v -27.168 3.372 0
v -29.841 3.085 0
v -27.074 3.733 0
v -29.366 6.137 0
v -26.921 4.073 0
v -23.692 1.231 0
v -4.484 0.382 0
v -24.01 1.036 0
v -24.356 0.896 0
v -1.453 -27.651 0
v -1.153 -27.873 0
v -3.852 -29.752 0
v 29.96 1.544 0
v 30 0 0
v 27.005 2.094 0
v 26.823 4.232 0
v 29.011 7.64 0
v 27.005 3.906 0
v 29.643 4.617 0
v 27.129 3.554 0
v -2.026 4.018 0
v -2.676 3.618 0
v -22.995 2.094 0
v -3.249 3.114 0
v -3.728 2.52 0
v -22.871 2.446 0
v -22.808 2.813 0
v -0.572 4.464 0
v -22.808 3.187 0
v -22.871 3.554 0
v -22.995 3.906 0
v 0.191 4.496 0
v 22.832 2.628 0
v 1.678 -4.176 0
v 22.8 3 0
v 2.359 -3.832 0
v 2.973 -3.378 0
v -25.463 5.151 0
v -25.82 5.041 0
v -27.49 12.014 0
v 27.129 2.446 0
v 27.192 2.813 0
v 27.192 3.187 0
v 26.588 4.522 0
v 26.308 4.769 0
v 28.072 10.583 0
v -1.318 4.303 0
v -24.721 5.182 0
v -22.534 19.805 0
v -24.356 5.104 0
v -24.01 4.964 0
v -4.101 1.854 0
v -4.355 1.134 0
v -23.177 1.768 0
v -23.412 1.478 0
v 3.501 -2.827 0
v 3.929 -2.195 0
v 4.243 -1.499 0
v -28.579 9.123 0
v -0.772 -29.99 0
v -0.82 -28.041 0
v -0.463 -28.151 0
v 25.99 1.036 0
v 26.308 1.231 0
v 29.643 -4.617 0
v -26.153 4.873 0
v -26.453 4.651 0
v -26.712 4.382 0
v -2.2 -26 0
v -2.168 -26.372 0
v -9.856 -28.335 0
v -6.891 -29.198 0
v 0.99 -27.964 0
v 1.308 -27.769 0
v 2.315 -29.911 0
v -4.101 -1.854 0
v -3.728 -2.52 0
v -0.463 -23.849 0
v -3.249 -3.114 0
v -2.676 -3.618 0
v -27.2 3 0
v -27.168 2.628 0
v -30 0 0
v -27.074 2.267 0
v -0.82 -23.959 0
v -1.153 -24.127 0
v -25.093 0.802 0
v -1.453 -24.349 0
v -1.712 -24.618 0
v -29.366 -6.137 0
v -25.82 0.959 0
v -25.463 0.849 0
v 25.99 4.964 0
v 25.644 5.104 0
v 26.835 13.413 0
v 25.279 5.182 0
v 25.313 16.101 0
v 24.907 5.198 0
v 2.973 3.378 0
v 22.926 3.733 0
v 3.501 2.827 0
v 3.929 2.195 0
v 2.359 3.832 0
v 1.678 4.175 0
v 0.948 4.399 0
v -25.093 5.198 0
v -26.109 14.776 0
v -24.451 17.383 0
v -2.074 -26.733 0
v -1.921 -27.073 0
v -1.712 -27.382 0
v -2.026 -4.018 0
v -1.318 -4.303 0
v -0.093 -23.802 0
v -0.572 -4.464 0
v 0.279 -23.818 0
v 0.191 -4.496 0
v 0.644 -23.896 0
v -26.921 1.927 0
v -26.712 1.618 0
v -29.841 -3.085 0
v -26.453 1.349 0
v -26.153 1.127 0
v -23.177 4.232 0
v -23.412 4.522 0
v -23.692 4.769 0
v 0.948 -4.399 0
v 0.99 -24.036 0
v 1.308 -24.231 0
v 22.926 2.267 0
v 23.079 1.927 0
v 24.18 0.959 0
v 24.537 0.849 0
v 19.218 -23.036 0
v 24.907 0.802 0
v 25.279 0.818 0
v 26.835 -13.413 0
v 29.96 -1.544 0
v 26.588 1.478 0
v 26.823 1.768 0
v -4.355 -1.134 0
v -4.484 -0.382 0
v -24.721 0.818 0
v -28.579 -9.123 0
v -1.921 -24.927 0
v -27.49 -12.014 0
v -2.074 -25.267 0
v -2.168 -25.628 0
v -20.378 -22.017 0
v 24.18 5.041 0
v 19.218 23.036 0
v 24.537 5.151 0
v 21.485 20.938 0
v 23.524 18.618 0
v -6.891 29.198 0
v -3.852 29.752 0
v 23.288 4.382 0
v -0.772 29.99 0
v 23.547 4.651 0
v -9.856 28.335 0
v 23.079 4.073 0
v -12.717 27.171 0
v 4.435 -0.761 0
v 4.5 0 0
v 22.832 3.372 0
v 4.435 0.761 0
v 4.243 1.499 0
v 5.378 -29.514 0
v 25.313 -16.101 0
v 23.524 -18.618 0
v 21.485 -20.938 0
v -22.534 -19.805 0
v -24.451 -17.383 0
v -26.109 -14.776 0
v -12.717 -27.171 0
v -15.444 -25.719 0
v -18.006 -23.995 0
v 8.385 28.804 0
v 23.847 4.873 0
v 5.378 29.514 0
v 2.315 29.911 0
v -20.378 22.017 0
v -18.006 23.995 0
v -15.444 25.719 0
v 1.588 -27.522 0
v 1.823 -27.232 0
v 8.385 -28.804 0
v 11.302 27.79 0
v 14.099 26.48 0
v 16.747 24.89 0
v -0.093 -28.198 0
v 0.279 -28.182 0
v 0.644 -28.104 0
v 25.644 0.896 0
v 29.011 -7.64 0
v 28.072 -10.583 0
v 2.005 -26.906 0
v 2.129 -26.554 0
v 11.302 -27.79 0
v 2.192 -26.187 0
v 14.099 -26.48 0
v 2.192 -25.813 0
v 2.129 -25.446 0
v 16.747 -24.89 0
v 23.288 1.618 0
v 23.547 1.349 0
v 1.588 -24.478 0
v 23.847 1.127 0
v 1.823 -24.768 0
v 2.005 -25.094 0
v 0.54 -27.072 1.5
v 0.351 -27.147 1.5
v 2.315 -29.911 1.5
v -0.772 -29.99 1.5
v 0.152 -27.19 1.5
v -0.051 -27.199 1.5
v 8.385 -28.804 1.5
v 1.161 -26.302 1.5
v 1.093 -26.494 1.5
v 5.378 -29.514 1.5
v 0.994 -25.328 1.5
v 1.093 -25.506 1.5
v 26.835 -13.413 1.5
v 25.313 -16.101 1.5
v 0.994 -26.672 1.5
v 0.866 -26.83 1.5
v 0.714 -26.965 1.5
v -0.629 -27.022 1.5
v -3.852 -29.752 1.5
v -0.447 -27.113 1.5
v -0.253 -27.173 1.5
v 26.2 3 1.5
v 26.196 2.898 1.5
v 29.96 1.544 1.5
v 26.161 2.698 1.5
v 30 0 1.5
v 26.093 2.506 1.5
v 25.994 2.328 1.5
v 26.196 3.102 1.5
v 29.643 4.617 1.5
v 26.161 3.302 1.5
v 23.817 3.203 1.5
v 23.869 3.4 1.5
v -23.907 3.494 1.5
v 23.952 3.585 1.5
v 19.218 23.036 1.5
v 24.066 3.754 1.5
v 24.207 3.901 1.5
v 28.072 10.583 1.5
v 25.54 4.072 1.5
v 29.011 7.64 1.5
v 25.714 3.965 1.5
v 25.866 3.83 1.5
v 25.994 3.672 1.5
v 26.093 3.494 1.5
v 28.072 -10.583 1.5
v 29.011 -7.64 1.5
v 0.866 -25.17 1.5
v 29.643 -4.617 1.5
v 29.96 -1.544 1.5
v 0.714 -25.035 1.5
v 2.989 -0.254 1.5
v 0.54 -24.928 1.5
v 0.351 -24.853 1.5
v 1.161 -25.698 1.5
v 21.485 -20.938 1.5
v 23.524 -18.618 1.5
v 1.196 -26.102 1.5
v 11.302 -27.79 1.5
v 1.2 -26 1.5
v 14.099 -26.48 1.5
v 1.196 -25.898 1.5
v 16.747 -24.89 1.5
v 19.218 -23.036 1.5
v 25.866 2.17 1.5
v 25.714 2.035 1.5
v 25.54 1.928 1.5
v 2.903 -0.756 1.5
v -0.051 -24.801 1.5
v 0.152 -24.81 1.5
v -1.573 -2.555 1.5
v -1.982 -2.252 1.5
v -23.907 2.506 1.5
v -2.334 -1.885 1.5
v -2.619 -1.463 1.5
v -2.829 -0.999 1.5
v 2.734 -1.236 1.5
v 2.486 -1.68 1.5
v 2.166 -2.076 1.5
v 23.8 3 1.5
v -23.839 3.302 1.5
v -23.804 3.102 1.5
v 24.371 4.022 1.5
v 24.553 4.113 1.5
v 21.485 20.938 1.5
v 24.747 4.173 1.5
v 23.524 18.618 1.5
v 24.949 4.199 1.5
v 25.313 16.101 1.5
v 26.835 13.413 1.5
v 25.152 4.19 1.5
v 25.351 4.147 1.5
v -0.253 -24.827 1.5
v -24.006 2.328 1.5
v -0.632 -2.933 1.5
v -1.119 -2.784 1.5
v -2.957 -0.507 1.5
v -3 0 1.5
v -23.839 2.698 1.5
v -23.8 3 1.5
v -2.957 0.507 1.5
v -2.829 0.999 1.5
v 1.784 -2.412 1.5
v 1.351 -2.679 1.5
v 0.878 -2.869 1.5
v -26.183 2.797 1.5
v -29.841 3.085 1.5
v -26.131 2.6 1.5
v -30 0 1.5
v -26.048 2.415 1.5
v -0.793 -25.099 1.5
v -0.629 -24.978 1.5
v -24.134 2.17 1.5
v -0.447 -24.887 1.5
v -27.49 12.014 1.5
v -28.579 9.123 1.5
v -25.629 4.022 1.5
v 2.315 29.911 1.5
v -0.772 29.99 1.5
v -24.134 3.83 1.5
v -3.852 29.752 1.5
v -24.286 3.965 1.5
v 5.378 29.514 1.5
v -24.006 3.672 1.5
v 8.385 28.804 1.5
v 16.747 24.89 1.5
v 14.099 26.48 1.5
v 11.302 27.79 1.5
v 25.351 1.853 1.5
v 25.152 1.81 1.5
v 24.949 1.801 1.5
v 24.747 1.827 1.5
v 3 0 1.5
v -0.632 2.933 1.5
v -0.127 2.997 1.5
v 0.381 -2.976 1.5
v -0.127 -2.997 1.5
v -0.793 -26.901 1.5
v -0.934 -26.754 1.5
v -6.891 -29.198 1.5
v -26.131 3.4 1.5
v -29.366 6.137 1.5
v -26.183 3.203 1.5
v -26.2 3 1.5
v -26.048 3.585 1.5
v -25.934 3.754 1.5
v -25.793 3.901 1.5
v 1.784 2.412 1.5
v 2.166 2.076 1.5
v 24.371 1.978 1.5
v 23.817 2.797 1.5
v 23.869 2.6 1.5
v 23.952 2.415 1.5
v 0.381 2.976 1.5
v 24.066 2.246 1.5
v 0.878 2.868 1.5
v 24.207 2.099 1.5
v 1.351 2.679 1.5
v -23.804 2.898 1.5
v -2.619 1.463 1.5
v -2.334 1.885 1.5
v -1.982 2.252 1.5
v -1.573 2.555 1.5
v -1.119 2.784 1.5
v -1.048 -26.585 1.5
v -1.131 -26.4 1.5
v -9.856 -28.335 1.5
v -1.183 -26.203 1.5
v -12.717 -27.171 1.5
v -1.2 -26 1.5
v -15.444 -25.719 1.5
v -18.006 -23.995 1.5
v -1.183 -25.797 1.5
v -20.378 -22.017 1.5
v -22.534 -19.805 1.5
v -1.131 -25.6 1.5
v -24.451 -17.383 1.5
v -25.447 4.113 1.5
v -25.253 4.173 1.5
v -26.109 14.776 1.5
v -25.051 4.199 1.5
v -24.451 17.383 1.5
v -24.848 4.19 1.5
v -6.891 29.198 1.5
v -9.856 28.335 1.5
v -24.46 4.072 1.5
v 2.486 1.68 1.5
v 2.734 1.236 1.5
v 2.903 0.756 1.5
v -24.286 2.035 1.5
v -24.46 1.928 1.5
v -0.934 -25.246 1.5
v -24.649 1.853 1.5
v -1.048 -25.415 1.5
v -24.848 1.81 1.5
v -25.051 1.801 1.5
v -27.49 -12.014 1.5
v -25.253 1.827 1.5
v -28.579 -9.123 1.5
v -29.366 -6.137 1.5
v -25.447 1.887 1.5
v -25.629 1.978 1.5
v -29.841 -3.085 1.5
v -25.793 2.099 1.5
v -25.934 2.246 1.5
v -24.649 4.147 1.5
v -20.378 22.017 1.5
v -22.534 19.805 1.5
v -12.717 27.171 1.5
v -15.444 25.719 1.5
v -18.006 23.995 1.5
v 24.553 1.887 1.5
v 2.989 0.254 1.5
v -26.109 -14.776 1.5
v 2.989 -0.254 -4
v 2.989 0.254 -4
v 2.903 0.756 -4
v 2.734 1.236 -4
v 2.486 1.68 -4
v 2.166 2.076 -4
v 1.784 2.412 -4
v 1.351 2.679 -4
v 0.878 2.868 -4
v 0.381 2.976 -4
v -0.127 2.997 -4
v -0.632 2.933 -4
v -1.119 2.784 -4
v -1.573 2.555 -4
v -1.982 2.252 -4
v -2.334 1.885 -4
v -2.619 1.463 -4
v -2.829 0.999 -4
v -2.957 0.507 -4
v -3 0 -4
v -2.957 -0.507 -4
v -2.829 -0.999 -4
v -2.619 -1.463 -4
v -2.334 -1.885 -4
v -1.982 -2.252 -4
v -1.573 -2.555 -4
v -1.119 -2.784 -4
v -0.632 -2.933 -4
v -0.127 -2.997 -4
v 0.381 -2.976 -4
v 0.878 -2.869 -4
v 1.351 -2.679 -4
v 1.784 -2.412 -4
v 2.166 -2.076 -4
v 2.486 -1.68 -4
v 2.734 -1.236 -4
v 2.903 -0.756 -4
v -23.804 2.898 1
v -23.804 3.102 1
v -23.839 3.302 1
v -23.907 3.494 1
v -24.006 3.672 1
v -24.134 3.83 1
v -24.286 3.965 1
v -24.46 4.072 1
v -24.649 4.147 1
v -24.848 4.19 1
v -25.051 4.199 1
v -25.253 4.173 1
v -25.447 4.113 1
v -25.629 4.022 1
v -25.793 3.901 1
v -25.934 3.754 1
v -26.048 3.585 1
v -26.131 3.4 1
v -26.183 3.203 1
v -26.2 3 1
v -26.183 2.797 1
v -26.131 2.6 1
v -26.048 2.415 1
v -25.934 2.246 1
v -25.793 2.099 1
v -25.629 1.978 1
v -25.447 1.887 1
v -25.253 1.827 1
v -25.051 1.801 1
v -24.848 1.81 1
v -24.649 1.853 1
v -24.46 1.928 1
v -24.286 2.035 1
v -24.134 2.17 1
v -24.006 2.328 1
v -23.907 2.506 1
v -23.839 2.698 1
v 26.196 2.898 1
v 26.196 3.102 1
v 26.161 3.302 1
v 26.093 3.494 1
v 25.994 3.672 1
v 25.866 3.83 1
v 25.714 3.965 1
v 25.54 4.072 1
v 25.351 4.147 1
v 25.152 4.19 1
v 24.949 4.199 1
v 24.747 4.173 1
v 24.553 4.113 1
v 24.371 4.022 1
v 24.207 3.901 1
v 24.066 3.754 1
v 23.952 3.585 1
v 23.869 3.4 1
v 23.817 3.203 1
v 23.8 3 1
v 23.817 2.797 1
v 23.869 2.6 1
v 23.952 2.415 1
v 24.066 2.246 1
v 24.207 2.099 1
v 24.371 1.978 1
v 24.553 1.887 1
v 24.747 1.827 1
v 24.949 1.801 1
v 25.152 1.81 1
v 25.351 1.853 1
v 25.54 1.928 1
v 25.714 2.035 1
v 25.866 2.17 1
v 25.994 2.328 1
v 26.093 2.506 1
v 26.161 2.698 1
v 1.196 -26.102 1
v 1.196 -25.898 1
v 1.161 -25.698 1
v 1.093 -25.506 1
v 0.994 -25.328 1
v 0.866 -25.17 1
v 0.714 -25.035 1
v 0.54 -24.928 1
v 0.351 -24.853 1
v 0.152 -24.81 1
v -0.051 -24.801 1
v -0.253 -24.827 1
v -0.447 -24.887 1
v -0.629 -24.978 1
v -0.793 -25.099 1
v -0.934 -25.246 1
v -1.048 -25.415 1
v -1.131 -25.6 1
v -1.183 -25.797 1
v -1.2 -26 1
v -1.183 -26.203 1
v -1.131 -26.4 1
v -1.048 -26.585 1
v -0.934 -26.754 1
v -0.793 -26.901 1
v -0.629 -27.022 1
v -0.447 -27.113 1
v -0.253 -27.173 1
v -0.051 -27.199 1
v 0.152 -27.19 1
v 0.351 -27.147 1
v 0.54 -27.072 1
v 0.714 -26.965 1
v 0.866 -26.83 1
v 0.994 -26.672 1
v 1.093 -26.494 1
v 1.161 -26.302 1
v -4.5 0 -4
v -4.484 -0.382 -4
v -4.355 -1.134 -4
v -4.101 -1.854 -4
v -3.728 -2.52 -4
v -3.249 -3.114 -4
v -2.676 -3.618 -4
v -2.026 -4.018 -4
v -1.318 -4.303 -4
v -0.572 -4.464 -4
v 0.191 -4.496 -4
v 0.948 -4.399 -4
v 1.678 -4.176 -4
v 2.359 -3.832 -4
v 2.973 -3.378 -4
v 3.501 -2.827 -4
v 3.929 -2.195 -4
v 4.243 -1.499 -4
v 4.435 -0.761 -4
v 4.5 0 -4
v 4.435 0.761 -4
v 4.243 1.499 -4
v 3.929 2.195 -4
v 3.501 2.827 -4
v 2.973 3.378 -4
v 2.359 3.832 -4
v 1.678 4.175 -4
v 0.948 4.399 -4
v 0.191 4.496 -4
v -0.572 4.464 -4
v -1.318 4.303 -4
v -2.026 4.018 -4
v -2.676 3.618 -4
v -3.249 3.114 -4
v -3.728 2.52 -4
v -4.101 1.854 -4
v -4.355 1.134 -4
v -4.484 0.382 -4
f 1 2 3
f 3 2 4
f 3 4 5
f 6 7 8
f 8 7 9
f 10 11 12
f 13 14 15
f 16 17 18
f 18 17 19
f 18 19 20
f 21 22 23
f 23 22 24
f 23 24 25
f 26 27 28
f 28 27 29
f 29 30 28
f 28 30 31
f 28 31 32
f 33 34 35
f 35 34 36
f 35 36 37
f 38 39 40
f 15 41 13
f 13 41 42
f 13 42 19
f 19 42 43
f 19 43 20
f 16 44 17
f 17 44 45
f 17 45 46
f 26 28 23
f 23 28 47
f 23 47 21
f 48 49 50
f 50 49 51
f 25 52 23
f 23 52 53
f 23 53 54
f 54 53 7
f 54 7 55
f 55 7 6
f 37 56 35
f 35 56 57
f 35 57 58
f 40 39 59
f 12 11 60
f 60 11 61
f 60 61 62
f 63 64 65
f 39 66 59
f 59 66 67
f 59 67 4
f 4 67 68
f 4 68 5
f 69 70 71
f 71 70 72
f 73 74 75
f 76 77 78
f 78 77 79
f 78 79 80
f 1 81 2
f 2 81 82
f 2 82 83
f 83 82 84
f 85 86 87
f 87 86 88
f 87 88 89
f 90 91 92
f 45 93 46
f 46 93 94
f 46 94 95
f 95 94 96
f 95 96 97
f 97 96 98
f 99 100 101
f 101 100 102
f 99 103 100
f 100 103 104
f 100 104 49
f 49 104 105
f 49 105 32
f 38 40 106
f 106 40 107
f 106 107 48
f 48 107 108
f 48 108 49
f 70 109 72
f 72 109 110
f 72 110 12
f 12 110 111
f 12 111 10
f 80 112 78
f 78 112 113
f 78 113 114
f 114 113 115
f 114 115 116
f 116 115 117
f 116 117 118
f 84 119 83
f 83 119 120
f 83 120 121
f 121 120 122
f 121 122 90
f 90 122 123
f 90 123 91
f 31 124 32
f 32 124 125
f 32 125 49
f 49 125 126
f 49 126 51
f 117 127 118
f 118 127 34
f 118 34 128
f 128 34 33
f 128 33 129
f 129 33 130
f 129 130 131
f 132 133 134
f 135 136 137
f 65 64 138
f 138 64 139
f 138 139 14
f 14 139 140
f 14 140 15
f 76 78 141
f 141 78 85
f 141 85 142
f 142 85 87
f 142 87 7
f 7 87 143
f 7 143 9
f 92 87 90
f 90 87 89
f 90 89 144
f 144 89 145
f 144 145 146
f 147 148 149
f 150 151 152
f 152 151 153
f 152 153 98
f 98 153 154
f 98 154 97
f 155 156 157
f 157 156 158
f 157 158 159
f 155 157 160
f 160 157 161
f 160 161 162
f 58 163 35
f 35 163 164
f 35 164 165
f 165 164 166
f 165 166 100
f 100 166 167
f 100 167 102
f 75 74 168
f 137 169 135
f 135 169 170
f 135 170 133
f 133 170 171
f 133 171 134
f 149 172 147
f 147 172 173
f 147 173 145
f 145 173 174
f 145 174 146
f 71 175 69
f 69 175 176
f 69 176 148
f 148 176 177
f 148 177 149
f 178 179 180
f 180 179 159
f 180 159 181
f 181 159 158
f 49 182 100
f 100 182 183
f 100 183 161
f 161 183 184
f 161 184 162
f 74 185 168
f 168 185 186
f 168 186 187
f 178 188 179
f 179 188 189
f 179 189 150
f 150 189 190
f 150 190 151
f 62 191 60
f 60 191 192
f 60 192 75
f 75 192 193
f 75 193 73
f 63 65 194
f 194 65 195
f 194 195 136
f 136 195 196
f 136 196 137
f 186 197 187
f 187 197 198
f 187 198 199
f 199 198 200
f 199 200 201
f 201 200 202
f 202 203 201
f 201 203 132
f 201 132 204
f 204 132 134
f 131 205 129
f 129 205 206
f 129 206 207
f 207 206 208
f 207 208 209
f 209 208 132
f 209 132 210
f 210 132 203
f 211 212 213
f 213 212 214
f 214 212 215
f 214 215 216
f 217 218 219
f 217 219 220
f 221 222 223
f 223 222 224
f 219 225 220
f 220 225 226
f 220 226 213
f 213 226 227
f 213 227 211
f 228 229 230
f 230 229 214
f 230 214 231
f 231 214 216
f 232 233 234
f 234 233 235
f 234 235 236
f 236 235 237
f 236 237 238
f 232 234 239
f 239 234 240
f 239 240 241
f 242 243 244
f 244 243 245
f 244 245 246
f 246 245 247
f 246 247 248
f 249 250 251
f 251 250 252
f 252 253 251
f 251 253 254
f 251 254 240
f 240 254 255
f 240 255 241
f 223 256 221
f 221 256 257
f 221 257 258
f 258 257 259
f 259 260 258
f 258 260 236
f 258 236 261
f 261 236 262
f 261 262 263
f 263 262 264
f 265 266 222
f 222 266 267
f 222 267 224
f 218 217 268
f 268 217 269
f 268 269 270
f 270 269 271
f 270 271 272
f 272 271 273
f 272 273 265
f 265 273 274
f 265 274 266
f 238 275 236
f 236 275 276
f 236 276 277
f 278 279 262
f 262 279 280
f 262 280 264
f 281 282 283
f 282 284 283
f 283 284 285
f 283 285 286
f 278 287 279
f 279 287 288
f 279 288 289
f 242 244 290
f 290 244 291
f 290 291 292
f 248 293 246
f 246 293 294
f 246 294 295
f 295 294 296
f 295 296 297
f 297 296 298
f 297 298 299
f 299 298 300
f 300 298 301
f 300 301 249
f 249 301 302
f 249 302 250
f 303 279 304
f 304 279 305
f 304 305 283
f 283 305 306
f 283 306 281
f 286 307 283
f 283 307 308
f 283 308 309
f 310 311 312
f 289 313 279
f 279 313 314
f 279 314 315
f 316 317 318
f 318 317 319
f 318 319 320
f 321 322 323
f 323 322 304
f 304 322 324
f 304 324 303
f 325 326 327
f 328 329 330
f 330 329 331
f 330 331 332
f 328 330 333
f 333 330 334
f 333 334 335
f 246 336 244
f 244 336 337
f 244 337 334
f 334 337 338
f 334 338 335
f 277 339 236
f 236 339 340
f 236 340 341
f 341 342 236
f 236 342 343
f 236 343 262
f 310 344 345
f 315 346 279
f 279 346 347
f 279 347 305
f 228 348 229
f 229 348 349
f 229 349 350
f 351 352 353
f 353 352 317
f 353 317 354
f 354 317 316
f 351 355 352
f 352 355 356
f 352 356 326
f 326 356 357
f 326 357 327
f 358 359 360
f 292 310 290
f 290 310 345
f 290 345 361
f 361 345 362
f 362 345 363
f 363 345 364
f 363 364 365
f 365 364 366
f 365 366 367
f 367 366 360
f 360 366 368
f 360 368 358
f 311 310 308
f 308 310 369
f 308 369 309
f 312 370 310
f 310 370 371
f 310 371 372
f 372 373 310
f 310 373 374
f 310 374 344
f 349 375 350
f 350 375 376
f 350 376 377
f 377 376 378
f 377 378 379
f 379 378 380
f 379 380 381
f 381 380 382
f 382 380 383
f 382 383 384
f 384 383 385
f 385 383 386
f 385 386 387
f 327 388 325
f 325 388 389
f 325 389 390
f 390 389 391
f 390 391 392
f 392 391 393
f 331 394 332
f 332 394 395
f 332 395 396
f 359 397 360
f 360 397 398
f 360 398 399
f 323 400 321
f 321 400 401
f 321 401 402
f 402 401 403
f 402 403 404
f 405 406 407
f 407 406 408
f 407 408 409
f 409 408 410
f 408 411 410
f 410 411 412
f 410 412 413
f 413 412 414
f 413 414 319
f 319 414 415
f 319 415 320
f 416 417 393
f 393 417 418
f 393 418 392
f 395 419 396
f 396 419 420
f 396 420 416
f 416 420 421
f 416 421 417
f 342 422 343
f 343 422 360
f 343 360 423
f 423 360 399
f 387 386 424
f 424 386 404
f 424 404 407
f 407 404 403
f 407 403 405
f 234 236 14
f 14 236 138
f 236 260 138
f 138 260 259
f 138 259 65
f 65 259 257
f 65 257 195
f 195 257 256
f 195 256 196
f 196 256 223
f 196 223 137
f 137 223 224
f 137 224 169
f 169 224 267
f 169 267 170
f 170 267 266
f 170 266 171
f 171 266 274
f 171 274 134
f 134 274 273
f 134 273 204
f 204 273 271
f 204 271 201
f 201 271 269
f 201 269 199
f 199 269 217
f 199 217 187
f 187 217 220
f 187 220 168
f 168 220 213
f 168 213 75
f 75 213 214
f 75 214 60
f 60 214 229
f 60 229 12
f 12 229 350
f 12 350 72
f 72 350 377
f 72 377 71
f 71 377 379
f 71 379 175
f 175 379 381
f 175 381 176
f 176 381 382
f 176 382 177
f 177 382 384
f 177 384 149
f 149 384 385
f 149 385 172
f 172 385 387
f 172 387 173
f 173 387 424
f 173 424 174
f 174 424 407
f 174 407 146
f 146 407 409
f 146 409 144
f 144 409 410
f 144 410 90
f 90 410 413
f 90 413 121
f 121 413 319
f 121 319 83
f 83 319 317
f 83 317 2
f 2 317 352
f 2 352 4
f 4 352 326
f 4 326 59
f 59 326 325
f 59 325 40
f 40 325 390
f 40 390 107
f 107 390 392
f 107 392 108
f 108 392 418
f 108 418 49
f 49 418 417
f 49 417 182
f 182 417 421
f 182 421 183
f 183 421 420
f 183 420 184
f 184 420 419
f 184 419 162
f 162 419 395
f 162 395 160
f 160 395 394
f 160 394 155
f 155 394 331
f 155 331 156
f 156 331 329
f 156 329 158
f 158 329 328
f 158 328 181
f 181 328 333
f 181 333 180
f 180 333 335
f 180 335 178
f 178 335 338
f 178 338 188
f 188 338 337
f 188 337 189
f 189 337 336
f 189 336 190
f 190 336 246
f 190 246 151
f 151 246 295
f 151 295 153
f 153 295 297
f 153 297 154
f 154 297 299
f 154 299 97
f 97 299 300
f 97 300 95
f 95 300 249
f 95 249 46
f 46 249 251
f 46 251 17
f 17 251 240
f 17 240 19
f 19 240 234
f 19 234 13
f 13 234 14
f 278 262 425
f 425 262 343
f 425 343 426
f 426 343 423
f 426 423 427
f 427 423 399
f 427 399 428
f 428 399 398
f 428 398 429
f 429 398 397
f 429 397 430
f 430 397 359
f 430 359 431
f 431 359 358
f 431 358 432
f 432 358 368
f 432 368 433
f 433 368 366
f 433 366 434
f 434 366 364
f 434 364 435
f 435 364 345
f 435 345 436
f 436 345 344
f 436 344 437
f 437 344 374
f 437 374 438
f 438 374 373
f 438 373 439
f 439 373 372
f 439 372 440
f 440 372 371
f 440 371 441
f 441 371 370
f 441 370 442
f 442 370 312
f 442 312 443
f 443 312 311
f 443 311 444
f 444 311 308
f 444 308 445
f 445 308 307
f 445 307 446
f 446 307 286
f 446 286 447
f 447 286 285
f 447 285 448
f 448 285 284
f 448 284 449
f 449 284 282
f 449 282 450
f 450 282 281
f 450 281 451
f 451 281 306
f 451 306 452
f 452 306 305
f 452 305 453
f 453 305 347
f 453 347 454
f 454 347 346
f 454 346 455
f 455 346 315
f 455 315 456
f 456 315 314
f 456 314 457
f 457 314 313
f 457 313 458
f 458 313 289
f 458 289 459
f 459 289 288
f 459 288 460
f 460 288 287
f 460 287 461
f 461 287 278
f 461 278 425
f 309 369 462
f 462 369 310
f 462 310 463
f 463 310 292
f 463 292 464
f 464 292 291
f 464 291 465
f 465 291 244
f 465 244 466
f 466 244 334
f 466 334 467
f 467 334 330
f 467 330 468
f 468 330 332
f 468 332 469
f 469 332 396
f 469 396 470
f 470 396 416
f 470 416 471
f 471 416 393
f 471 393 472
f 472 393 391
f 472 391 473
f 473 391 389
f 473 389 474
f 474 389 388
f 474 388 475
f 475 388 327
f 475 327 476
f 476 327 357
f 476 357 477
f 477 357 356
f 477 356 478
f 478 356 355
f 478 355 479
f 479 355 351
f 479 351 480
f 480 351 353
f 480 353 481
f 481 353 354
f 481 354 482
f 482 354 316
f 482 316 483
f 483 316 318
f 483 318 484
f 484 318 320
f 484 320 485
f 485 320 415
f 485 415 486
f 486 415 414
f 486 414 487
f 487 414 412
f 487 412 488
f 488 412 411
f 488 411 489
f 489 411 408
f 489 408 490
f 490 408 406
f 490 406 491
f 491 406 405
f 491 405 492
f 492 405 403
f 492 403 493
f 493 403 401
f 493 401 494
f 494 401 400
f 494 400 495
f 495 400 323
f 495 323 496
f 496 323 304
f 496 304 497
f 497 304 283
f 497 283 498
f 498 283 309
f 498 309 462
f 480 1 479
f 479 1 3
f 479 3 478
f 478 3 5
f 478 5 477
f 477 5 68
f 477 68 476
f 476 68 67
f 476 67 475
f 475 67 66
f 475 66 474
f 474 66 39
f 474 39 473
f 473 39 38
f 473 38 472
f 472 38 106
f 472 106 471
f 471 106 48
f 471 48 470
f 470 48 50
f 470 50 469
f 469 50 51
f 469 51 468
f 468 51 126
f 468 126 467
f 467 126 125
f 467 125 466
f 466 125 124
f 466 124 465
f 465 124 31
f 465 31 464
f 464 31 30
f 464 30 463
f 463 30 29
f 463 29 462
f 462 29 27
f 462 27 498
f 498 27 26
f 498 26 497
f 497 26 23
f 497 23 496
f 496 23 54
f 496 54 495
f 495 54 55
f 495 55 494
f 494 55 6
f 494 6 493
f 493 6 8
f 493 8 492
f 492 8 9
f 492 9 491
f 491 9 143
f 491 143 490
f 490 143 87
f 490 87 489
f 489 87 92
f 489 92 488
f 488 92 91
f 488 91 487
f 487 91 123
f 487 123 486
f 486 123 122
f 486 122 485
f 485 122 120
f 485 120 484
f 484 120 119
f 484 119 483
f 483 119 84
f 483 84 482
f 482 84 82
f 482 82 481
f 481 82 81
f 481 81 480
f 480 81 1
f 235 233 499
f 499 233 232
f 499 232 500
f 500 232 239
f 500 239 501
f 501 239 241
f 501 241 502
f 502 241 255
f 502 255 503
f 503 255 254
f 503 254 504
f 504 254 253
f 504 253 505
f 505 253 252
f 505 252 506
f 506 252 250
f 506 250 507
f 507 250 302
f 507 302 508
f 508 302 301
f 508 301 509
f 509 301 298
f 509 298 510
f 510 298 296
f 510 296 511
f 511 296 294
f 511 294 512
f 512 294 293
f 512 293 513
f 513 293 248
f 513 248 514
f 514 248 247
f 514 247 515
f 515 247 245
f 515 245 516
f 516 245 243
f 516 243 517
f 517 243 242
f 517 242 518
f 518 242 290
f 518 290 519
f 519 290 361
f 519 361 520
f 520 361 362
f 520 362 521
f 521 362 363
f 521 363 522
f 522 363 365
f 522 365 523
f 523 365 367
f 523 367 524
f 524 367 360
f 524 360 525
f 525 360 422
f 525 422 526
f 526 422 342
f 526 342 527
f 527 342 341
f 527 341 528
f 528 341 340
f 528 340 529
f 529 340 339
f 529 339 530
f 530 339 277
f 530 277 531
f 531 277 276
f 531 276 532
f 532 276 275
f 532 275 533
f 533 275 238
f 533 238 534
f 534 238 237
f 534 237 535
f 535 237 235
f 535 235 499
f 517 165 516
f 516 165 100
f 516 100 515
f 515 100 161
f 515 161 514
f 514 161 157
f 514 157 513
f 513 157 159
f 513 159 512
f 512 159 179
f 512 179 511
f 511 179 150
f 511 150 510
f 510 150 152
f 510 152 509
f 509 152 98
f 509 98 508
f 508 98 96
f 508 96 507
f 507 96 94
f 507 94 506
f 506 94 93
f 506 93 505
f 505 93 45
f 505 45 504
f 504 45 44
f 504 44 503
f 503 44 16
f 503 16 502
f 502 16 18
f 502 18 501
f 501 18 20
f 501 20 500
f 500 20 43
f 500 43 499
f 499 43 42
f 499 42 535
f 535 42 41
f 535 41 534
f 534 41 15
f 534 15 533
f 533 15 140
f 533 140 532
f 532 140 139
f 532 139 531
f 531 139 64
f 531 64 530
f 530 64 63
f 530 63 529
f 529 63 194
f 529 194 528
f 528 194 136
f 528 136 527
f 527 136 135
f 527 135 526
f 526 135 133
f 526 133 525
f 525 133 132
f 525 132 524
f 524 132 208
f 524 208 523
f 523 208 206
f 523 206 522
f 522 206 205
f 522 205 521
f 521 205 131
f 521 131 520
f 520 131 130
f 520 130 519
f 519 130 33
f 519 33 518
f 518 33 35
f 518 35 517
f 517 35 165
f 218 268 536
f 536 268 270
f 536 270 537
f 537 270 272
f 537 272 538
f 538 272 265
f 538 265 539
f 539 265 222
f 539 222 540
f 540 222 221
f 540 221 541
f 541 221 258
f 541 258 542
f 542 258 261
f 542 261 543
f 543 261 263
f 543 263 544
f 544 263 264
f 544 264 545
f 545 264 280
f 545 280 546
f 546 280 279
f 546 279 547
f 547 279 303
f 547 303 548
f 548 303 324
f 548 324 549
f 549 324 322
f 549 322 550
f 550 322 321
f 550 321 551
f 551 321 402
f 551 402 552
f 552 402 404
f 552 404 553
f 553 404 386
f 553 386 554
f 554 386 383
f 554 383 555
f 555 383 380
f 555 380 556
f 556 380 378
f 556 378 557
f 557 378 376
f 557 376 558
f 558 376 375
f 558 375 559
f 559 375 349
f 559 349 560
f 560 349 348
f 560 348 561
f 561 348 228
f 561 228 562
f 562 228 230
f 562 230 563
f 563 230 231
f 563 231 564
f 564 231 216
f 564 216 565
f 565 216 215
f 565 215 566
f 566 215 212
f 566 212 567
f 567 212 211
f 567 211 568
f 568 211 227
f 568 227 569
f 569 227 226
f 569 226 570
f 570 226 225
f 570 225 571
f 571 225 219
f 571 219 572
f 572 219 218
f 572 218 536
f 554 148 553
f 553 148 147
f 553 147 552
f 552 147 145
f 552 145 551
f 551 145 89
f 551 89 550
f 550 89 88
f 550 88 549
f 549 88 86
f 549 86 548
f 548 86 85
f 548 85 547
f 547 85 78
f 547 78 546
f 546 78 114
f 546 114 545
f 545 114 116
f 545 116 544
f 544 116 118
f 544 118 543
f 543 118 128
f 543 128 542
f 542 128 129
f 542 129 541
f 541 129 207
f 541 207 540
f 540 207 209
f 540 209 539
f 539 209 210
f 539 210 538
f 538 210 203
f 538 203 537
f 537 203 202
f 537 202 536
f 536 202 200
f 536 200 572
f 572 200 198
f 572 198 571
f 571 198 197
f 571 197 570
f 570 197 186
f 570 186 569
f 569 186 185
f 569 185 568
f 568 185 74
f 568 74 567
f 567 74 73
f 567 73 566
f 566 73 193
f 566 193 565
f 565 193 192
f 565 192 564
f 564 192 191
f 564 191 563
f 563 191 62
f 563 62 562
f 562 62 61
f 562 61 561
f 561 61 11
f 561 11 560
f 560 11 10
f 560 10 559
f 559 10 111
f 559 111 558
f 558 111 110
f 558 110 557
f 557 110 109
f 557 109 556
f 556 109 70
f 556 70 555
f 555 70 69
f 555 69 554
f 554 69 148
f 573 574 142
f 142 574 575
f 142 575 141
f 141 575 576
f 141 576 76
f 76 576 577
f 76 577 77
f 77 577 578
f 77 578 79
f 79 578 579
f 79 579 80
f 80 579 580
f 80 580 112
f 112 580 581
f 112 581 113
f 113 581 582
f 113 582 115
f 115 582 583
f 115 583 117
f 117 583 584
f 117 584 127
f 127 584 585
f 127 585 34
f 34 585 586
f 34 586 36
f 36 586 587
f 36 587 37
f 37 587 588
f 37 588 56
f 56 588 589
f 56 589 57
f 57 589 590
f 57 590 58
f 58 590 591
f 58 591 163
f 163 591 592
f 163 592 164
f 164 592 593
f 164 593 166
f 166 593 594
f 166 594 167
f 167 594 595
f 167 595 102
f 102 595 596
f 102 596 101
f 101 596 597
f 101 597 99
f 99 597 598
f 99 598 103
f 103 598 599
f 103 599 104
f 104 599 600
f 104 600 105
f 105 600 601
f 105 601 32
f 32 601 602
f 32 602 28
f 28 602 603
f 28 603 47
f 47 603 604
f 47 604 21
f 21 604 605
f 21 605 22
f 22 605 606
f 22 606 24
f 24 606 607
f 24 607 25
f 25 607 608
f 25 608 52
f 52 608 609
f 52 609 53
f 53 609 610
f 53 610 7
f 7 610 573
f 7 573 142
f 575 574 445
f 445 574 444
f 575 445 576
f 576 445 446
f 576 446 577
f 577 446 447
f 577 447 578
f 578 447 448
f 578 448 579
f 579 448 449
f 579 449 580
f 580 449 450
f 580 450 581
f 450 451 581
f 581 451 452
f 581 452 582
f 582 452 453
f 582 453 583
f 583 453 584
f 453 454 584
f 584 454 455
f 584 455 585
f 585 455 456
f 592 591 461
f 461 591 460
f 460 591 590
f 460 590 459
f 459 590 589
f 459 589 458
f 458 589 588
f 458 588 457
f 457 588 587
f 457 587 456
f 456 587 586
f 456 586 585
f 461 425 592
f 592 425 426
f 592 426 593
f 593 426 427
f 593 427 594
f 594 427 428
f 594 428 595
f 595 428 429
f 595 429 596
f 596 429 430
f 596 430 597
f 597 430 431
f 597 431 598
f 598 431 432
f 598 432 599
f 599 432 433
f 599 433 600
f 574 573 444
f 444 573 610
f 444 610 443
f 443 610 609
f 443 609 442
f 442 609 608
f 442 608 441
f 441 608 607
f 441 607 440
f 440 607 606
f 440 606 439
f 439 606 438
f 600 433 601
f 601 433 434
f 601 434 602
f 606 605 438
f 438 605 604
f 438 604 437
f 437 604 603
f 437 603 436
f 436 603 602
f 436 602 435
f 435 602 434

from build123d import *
from build123d.topology import SkipClean

# Parameters (mm, degrees)
SCHIZZO1_R                             = 30
SCHIZZO1_R_2                           = 3
ESTRUSIONE_ESTRUSIONE1_DEPTH           = 1.5
FORO_SVASATO_PER_VITE_M2_1_D           = 2.4
FORO_SVASATO_PER_VITE_M2_1_DEPTH       = 6
FORO_SVASATO_PER_VITE_M2_1_CSINK_D     = 4.4
FORO_SVASATO_PER_VITE_M2_1_CSINK_ANGLE = 90
FORO_SVASATO_PER_VITE_M2_1_TIP         = 0.721032743
SCHIZZO5_R                             = 4.5
ESTRUSIONE_ESTRUSIONE2_DEPTH           = 4
SCHIZZO9_R                             = 3
TAGLIO_ESTRUSIONE1_DEPTH               = 10


with BuildPart() as part:
    # Schizzo1 → Estrusione-Estrusione1 (new body)
    with BuildSketch(Plane.XY):
        Circle(SCHIZZO1_R)
        Circle(SCHIZZO1_R_2, mode=Mode.SUBTRACT)
    extrude(amount=ESTRUSIONE_ESTRUSIONE1_DEPTH)

    # Foro svasato per Vite M2-1
    with Locations(Plane(origin=(0, 0, 0), x_dir=(-1, 0, 0), z_dir=(0, 0, -1))):
        with Locations((0, -26), (-25, 3), (25, 3)):
            CounterSinkHole(FORO_SVASATO_PER_VITE_M2_1_D / 2, FORO_SVASATO_PER_VITE_M2_1_CSINK_D / 2, depth=FORO_SVASATO_PER_VITE_M2_1_DEPTH, counter_sink_angle=FORO_SVASATO_PER_VITE_M2_1_CSINK_ANGLE)
            with Locations((0, 0, -(FORO_SVASATO_PER_VITE_M2_1_DEPTH + FORO_SVASATO_PER_VITE_M2_1_TIP / 2))):  # 118° drill point
                Cone(0, FORO_SVASATO_PER_VITE_M2_1_D / 2, FORO_SVASATO_PER_VITE_M2_1_TIP, mode=Mode.SUBTRACT)

    # Schizzo5 → Estrusione-Estrusione2 (add)
    with BuildSketch(Plane(origin=(0, 0, 0), x_dir=(-1, 0, 0), z_dir=(0, 0, -1))):
        with Locations(Location((0, 0, 0), (0, 0, 180))):
            Circle(SCHIZZO5_R)
    extrude(amount=ESTRUSIONE_ESTRUSIONE2_DEPTH)

    # Schizzo9 → Taglio-Estrusione1 (cut)
    with SkipClean():  # the faces are left unmerged after this step: merging them gives an invalid solid
        with BuildSketch(Plane(origin=(0, 0, -4), x_dir=(-1, 0, 0), z_dir=(0, 0, -1))):
            Circle(SCHIZZO9_R)
        extrude(amount=-TAGLIO_ESTRUSIONE1_DEPTH, mode=Mode.SUBTRACT)


solid = part.part
